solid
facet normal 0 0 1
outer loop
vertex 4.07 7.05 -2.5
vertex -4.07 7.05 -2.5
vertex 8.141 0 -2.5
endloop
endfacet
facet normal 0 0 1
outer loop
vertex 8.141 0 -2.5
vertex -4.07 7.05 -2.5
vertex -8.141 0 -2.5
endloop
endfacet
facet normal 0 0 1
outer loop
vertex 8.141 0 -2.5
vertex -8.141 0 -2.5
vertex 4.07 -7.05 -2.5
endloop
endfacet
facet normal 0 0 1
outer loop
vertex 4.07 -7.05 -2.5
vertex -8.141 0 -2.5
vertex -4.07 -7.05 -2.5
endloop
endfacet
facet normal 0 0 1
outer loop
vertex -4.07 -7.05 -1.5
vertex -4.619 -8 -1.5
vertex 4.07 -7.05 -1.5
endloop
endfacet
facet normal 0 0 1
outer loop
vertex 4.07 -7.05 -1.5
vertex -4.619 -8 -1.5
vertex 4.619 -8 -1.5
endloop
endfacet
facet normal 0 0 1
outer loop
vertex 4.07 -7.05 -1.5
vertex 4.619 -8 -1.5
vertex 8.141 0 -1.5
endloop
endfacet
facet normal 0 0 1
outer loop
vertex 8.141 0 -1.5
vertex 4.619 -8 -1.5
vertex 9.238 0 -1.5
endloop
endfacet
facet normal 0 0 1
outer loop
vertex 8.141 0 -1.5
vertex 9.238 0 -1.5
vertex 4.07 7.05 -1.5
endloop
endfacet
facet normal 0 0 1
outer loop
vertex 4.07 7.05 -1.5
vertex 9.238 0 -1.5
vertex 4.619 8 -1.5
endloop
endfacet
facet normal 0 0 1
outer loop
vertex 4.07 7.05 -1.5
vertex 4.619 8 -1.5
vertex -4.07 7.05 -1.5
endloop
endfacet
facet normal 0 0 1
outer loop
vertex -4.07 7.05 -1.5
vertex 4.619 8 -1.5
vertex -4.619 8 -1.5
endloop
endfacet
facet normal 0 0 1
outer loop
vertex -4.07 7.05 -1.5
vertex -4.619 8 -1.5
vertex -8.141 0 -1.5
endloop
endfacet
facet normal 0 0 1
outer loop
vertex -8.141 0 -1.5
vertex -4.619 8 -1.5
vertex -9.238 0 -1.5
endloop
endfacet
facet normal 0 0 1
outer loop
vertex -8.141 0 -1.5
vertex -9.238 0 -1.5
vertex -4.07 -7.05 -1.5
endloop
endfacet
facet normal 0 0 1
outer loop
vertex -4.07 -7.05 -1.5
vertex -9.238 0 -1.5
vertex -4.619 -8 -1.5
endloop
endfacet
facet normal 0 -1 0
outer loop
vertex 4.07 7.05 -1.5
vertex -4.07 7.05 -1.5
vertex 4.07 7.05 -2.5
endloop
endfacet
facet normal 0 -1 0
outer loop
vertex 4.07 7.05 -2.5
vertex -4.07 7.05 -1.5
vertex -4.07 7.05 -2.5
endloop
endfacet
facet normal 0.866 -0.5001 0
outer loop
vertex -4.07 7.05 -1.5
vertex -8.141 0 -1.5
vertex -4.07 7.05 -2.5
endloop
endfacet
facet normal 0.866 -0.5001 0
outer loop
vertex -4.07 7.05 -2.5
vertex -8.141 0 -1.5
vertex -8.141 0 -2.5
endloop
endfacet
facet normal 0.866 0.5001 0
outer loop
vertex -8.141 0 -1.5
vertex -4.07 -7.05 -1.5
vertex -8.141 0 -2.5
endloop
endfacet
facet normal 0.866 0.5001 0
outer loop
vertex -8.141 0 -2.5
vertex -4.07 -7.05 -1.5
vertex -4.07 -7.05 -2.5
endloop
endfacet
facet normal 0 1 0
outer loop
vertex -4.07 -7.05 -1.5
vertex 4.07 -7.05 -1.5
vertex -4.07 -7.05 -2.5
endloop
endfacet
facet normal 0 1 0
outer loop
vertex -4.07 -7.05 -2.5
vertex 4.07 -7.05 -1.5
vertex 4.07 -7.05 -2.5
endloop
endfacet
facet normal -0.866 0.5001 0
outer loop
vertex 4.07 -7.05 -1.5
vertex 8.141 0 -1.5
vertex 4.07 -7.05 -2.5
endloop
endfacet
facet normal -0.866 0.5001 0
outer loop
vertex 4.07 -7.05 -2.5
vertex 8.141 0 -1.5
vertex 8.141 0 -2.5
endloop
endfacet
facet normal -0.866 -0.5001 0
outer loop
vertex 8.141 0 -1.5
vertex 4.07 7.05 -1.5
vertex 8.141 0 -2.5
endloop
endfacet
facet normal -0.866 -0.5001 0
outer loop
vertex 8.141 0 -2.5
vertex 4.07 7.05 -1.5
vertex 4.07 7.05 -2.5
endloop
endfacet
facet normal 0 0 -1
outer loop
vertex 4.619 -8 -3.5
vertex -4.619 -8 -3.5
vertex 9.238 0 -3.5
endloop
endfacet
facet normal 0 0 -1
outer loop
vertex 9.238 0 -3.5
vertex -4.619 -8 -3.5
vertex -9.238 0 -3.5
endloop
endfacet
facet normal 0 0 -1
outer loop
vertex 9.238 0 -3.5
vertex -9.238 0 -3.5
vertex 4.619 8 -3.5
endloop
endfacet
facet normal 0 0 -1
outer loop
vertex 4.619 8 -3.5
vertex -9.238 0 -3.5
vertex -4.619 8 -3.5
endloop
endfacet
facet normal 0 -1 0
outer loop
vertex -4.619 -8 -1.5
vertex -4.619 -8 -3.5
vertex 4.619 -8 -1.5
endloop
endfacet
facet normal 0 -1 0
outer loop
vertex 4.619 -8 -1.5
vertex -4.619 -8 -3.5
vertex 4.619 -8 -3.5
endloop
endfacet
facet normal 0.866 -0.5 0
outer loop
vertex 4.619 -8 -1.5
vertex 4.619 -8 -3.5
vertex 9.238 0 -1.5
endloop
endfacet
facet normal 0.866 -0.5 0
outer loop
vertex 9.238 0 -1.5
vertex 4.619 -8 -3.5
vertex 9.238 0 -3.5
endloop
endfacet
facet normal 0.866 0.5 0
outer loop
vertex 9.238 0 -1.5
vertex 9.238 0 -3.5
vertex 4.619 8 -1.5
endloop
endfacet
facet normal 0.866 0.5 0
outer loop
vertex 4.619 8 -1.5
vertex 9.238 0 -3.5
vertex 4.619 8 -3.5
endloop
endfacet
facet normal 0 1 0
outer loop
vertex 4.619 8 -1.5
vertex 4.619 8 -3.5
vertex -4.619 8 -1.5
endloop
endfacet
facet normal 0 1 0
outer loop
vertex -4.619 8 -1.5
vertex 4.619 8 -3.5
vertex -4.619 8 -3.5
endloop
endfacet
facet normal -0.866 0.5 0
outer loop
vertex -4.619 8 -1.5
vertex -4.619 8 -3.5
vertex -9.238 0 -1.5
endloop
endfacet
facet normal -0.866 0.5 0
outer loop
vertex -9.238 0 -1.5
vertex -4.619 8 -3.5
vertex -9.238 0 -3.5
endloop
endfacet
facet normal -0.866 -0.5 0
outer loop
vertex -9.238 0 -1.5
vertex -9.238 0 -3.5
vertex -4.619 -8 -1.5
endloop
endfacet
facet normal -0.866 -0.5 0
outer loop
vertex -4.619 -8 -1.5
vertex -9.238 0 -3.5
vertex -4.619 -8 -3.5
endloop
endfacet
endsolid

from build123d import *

# Parameters (mm, degrees)
BOSS_EXTRUDE1_DEPTH      = 1
BOSS_EXTRUDE1_DEPTH_BACK = 2.5
BOSS_EXTRUDE2_DEPTH      = 2.5
BOSS_EXTRUDE3_DEPTH      = 1
BOSS_EXTRUDE4_DEPTH      = 1
CUT_EXTRUDE1_DEPTH       = 13.71154331


with BuildPart() as part:
    # Sketch1 → Boss-Extrude1 (new, two sides: drawn at the far end of the back side and taken through both)
    with BuildSketch(Plane.XY.offset(-BOSS_EXTRUDE1_DEPTH_BACK)):
        Polygon((8.082903769, 0), (4.041451884, 7), (-4.041451884, 7), (-8.082903769, 0), (-4.041451884, -7), (4.041451884, -7), align=None)
        Polygon((5.888972746, 0), (2.944486373, 5.1), (-2.944486373, 5.1), (-5.888972746, 0), (-2.944486373, -5.1), (2.944486373, -5.1), align=None, mode=Mode.SUBTRACT)
    extrude(amount=BOSS_EXTRUDE1_DEPTH + BOSS_EXTRUDE1_DEPTH_BACK)

    # Sketch3 → Boss-Extrude2 (add)
    with BuildSketch(Plane.XY):
        Polygon((5.888972746, 0), (2.944486373, 5.1), (-2.944486373, 5.1), (-5.888972746, 0), (-2.944486373, -5.1), (2.944486373, -5.1), align=None)
        Polygon((5.542562584, 0), (2.771281292, 4.8), (-2.771281292, 4.8), (-5.542562584, 0), (-2.771281292, -4.8), (2.771281292, -4.8), align=None, mode=Mode.SUBTRACT)
    extrude(amount=-BOSS_EXTRUDE2_DEPTH)

    # Sketch4 → Boss-Extrude3 (add)
    with BuildSketch(Plane(origin=(0, 0, -2.5), x_dir=(-1, 0, 0), z_dir=(0, 0, -1))):
        Polygon((9.237604307, 0), (4.618802154, 8), (-4.618802154, 8), (-9.237604307, 0), (-4.618802154, -8), (4.618802154, -8), align=None)
    extrude(amount=BOSS_EXTRUDE3_DEPTH)

    # Sketch5 → Boss-Extrude4 (add)
    with BuildSketch(Plane.XY.offset(-2.5)):
        Polygon((-4.618802154, 8), (-9.237604307, 0), (-4.618802154, -8), (4.618802154, -8), (9.237604307, 0), (4.618802154, 8), align=None)
        Polygon((-4.070319398, 7.05), (-8.140638796, 0), (-4.070319398, -7.05), (4.070319398, -7.05), (8.140638796, 0), (4.070319398, 7.05), align=None, mode=Mode.SUBTRACT)
    extrude(amount=BOSS_EXTRUDE4_DEPTH)

    # Sketch5<2> → Cut-Extrude1 (cut, through all)
    with BuildSketch(Plane.XY.offset(-2.5)):
        Polygon((4.041451884, -7), (8.082903769, 0), (4.041451884, 7), (-4.041451884, 7), (-8.082903769, 0), (-4.041451884, -7), align=None)
        Polygon((5.542562584, 0), (2.771281292, -4.8), (-2.771281292, -4.8), (-5.542562584, 0), (-2.771281292, 4.8), (2.771281292, 4.8), align=None, mode=Mode.SUBTRACT)
    extrude(amount=CUT_EXTRUDE1_DEPTH, mode=Mode.SUBTRACT)


solid = part.part
